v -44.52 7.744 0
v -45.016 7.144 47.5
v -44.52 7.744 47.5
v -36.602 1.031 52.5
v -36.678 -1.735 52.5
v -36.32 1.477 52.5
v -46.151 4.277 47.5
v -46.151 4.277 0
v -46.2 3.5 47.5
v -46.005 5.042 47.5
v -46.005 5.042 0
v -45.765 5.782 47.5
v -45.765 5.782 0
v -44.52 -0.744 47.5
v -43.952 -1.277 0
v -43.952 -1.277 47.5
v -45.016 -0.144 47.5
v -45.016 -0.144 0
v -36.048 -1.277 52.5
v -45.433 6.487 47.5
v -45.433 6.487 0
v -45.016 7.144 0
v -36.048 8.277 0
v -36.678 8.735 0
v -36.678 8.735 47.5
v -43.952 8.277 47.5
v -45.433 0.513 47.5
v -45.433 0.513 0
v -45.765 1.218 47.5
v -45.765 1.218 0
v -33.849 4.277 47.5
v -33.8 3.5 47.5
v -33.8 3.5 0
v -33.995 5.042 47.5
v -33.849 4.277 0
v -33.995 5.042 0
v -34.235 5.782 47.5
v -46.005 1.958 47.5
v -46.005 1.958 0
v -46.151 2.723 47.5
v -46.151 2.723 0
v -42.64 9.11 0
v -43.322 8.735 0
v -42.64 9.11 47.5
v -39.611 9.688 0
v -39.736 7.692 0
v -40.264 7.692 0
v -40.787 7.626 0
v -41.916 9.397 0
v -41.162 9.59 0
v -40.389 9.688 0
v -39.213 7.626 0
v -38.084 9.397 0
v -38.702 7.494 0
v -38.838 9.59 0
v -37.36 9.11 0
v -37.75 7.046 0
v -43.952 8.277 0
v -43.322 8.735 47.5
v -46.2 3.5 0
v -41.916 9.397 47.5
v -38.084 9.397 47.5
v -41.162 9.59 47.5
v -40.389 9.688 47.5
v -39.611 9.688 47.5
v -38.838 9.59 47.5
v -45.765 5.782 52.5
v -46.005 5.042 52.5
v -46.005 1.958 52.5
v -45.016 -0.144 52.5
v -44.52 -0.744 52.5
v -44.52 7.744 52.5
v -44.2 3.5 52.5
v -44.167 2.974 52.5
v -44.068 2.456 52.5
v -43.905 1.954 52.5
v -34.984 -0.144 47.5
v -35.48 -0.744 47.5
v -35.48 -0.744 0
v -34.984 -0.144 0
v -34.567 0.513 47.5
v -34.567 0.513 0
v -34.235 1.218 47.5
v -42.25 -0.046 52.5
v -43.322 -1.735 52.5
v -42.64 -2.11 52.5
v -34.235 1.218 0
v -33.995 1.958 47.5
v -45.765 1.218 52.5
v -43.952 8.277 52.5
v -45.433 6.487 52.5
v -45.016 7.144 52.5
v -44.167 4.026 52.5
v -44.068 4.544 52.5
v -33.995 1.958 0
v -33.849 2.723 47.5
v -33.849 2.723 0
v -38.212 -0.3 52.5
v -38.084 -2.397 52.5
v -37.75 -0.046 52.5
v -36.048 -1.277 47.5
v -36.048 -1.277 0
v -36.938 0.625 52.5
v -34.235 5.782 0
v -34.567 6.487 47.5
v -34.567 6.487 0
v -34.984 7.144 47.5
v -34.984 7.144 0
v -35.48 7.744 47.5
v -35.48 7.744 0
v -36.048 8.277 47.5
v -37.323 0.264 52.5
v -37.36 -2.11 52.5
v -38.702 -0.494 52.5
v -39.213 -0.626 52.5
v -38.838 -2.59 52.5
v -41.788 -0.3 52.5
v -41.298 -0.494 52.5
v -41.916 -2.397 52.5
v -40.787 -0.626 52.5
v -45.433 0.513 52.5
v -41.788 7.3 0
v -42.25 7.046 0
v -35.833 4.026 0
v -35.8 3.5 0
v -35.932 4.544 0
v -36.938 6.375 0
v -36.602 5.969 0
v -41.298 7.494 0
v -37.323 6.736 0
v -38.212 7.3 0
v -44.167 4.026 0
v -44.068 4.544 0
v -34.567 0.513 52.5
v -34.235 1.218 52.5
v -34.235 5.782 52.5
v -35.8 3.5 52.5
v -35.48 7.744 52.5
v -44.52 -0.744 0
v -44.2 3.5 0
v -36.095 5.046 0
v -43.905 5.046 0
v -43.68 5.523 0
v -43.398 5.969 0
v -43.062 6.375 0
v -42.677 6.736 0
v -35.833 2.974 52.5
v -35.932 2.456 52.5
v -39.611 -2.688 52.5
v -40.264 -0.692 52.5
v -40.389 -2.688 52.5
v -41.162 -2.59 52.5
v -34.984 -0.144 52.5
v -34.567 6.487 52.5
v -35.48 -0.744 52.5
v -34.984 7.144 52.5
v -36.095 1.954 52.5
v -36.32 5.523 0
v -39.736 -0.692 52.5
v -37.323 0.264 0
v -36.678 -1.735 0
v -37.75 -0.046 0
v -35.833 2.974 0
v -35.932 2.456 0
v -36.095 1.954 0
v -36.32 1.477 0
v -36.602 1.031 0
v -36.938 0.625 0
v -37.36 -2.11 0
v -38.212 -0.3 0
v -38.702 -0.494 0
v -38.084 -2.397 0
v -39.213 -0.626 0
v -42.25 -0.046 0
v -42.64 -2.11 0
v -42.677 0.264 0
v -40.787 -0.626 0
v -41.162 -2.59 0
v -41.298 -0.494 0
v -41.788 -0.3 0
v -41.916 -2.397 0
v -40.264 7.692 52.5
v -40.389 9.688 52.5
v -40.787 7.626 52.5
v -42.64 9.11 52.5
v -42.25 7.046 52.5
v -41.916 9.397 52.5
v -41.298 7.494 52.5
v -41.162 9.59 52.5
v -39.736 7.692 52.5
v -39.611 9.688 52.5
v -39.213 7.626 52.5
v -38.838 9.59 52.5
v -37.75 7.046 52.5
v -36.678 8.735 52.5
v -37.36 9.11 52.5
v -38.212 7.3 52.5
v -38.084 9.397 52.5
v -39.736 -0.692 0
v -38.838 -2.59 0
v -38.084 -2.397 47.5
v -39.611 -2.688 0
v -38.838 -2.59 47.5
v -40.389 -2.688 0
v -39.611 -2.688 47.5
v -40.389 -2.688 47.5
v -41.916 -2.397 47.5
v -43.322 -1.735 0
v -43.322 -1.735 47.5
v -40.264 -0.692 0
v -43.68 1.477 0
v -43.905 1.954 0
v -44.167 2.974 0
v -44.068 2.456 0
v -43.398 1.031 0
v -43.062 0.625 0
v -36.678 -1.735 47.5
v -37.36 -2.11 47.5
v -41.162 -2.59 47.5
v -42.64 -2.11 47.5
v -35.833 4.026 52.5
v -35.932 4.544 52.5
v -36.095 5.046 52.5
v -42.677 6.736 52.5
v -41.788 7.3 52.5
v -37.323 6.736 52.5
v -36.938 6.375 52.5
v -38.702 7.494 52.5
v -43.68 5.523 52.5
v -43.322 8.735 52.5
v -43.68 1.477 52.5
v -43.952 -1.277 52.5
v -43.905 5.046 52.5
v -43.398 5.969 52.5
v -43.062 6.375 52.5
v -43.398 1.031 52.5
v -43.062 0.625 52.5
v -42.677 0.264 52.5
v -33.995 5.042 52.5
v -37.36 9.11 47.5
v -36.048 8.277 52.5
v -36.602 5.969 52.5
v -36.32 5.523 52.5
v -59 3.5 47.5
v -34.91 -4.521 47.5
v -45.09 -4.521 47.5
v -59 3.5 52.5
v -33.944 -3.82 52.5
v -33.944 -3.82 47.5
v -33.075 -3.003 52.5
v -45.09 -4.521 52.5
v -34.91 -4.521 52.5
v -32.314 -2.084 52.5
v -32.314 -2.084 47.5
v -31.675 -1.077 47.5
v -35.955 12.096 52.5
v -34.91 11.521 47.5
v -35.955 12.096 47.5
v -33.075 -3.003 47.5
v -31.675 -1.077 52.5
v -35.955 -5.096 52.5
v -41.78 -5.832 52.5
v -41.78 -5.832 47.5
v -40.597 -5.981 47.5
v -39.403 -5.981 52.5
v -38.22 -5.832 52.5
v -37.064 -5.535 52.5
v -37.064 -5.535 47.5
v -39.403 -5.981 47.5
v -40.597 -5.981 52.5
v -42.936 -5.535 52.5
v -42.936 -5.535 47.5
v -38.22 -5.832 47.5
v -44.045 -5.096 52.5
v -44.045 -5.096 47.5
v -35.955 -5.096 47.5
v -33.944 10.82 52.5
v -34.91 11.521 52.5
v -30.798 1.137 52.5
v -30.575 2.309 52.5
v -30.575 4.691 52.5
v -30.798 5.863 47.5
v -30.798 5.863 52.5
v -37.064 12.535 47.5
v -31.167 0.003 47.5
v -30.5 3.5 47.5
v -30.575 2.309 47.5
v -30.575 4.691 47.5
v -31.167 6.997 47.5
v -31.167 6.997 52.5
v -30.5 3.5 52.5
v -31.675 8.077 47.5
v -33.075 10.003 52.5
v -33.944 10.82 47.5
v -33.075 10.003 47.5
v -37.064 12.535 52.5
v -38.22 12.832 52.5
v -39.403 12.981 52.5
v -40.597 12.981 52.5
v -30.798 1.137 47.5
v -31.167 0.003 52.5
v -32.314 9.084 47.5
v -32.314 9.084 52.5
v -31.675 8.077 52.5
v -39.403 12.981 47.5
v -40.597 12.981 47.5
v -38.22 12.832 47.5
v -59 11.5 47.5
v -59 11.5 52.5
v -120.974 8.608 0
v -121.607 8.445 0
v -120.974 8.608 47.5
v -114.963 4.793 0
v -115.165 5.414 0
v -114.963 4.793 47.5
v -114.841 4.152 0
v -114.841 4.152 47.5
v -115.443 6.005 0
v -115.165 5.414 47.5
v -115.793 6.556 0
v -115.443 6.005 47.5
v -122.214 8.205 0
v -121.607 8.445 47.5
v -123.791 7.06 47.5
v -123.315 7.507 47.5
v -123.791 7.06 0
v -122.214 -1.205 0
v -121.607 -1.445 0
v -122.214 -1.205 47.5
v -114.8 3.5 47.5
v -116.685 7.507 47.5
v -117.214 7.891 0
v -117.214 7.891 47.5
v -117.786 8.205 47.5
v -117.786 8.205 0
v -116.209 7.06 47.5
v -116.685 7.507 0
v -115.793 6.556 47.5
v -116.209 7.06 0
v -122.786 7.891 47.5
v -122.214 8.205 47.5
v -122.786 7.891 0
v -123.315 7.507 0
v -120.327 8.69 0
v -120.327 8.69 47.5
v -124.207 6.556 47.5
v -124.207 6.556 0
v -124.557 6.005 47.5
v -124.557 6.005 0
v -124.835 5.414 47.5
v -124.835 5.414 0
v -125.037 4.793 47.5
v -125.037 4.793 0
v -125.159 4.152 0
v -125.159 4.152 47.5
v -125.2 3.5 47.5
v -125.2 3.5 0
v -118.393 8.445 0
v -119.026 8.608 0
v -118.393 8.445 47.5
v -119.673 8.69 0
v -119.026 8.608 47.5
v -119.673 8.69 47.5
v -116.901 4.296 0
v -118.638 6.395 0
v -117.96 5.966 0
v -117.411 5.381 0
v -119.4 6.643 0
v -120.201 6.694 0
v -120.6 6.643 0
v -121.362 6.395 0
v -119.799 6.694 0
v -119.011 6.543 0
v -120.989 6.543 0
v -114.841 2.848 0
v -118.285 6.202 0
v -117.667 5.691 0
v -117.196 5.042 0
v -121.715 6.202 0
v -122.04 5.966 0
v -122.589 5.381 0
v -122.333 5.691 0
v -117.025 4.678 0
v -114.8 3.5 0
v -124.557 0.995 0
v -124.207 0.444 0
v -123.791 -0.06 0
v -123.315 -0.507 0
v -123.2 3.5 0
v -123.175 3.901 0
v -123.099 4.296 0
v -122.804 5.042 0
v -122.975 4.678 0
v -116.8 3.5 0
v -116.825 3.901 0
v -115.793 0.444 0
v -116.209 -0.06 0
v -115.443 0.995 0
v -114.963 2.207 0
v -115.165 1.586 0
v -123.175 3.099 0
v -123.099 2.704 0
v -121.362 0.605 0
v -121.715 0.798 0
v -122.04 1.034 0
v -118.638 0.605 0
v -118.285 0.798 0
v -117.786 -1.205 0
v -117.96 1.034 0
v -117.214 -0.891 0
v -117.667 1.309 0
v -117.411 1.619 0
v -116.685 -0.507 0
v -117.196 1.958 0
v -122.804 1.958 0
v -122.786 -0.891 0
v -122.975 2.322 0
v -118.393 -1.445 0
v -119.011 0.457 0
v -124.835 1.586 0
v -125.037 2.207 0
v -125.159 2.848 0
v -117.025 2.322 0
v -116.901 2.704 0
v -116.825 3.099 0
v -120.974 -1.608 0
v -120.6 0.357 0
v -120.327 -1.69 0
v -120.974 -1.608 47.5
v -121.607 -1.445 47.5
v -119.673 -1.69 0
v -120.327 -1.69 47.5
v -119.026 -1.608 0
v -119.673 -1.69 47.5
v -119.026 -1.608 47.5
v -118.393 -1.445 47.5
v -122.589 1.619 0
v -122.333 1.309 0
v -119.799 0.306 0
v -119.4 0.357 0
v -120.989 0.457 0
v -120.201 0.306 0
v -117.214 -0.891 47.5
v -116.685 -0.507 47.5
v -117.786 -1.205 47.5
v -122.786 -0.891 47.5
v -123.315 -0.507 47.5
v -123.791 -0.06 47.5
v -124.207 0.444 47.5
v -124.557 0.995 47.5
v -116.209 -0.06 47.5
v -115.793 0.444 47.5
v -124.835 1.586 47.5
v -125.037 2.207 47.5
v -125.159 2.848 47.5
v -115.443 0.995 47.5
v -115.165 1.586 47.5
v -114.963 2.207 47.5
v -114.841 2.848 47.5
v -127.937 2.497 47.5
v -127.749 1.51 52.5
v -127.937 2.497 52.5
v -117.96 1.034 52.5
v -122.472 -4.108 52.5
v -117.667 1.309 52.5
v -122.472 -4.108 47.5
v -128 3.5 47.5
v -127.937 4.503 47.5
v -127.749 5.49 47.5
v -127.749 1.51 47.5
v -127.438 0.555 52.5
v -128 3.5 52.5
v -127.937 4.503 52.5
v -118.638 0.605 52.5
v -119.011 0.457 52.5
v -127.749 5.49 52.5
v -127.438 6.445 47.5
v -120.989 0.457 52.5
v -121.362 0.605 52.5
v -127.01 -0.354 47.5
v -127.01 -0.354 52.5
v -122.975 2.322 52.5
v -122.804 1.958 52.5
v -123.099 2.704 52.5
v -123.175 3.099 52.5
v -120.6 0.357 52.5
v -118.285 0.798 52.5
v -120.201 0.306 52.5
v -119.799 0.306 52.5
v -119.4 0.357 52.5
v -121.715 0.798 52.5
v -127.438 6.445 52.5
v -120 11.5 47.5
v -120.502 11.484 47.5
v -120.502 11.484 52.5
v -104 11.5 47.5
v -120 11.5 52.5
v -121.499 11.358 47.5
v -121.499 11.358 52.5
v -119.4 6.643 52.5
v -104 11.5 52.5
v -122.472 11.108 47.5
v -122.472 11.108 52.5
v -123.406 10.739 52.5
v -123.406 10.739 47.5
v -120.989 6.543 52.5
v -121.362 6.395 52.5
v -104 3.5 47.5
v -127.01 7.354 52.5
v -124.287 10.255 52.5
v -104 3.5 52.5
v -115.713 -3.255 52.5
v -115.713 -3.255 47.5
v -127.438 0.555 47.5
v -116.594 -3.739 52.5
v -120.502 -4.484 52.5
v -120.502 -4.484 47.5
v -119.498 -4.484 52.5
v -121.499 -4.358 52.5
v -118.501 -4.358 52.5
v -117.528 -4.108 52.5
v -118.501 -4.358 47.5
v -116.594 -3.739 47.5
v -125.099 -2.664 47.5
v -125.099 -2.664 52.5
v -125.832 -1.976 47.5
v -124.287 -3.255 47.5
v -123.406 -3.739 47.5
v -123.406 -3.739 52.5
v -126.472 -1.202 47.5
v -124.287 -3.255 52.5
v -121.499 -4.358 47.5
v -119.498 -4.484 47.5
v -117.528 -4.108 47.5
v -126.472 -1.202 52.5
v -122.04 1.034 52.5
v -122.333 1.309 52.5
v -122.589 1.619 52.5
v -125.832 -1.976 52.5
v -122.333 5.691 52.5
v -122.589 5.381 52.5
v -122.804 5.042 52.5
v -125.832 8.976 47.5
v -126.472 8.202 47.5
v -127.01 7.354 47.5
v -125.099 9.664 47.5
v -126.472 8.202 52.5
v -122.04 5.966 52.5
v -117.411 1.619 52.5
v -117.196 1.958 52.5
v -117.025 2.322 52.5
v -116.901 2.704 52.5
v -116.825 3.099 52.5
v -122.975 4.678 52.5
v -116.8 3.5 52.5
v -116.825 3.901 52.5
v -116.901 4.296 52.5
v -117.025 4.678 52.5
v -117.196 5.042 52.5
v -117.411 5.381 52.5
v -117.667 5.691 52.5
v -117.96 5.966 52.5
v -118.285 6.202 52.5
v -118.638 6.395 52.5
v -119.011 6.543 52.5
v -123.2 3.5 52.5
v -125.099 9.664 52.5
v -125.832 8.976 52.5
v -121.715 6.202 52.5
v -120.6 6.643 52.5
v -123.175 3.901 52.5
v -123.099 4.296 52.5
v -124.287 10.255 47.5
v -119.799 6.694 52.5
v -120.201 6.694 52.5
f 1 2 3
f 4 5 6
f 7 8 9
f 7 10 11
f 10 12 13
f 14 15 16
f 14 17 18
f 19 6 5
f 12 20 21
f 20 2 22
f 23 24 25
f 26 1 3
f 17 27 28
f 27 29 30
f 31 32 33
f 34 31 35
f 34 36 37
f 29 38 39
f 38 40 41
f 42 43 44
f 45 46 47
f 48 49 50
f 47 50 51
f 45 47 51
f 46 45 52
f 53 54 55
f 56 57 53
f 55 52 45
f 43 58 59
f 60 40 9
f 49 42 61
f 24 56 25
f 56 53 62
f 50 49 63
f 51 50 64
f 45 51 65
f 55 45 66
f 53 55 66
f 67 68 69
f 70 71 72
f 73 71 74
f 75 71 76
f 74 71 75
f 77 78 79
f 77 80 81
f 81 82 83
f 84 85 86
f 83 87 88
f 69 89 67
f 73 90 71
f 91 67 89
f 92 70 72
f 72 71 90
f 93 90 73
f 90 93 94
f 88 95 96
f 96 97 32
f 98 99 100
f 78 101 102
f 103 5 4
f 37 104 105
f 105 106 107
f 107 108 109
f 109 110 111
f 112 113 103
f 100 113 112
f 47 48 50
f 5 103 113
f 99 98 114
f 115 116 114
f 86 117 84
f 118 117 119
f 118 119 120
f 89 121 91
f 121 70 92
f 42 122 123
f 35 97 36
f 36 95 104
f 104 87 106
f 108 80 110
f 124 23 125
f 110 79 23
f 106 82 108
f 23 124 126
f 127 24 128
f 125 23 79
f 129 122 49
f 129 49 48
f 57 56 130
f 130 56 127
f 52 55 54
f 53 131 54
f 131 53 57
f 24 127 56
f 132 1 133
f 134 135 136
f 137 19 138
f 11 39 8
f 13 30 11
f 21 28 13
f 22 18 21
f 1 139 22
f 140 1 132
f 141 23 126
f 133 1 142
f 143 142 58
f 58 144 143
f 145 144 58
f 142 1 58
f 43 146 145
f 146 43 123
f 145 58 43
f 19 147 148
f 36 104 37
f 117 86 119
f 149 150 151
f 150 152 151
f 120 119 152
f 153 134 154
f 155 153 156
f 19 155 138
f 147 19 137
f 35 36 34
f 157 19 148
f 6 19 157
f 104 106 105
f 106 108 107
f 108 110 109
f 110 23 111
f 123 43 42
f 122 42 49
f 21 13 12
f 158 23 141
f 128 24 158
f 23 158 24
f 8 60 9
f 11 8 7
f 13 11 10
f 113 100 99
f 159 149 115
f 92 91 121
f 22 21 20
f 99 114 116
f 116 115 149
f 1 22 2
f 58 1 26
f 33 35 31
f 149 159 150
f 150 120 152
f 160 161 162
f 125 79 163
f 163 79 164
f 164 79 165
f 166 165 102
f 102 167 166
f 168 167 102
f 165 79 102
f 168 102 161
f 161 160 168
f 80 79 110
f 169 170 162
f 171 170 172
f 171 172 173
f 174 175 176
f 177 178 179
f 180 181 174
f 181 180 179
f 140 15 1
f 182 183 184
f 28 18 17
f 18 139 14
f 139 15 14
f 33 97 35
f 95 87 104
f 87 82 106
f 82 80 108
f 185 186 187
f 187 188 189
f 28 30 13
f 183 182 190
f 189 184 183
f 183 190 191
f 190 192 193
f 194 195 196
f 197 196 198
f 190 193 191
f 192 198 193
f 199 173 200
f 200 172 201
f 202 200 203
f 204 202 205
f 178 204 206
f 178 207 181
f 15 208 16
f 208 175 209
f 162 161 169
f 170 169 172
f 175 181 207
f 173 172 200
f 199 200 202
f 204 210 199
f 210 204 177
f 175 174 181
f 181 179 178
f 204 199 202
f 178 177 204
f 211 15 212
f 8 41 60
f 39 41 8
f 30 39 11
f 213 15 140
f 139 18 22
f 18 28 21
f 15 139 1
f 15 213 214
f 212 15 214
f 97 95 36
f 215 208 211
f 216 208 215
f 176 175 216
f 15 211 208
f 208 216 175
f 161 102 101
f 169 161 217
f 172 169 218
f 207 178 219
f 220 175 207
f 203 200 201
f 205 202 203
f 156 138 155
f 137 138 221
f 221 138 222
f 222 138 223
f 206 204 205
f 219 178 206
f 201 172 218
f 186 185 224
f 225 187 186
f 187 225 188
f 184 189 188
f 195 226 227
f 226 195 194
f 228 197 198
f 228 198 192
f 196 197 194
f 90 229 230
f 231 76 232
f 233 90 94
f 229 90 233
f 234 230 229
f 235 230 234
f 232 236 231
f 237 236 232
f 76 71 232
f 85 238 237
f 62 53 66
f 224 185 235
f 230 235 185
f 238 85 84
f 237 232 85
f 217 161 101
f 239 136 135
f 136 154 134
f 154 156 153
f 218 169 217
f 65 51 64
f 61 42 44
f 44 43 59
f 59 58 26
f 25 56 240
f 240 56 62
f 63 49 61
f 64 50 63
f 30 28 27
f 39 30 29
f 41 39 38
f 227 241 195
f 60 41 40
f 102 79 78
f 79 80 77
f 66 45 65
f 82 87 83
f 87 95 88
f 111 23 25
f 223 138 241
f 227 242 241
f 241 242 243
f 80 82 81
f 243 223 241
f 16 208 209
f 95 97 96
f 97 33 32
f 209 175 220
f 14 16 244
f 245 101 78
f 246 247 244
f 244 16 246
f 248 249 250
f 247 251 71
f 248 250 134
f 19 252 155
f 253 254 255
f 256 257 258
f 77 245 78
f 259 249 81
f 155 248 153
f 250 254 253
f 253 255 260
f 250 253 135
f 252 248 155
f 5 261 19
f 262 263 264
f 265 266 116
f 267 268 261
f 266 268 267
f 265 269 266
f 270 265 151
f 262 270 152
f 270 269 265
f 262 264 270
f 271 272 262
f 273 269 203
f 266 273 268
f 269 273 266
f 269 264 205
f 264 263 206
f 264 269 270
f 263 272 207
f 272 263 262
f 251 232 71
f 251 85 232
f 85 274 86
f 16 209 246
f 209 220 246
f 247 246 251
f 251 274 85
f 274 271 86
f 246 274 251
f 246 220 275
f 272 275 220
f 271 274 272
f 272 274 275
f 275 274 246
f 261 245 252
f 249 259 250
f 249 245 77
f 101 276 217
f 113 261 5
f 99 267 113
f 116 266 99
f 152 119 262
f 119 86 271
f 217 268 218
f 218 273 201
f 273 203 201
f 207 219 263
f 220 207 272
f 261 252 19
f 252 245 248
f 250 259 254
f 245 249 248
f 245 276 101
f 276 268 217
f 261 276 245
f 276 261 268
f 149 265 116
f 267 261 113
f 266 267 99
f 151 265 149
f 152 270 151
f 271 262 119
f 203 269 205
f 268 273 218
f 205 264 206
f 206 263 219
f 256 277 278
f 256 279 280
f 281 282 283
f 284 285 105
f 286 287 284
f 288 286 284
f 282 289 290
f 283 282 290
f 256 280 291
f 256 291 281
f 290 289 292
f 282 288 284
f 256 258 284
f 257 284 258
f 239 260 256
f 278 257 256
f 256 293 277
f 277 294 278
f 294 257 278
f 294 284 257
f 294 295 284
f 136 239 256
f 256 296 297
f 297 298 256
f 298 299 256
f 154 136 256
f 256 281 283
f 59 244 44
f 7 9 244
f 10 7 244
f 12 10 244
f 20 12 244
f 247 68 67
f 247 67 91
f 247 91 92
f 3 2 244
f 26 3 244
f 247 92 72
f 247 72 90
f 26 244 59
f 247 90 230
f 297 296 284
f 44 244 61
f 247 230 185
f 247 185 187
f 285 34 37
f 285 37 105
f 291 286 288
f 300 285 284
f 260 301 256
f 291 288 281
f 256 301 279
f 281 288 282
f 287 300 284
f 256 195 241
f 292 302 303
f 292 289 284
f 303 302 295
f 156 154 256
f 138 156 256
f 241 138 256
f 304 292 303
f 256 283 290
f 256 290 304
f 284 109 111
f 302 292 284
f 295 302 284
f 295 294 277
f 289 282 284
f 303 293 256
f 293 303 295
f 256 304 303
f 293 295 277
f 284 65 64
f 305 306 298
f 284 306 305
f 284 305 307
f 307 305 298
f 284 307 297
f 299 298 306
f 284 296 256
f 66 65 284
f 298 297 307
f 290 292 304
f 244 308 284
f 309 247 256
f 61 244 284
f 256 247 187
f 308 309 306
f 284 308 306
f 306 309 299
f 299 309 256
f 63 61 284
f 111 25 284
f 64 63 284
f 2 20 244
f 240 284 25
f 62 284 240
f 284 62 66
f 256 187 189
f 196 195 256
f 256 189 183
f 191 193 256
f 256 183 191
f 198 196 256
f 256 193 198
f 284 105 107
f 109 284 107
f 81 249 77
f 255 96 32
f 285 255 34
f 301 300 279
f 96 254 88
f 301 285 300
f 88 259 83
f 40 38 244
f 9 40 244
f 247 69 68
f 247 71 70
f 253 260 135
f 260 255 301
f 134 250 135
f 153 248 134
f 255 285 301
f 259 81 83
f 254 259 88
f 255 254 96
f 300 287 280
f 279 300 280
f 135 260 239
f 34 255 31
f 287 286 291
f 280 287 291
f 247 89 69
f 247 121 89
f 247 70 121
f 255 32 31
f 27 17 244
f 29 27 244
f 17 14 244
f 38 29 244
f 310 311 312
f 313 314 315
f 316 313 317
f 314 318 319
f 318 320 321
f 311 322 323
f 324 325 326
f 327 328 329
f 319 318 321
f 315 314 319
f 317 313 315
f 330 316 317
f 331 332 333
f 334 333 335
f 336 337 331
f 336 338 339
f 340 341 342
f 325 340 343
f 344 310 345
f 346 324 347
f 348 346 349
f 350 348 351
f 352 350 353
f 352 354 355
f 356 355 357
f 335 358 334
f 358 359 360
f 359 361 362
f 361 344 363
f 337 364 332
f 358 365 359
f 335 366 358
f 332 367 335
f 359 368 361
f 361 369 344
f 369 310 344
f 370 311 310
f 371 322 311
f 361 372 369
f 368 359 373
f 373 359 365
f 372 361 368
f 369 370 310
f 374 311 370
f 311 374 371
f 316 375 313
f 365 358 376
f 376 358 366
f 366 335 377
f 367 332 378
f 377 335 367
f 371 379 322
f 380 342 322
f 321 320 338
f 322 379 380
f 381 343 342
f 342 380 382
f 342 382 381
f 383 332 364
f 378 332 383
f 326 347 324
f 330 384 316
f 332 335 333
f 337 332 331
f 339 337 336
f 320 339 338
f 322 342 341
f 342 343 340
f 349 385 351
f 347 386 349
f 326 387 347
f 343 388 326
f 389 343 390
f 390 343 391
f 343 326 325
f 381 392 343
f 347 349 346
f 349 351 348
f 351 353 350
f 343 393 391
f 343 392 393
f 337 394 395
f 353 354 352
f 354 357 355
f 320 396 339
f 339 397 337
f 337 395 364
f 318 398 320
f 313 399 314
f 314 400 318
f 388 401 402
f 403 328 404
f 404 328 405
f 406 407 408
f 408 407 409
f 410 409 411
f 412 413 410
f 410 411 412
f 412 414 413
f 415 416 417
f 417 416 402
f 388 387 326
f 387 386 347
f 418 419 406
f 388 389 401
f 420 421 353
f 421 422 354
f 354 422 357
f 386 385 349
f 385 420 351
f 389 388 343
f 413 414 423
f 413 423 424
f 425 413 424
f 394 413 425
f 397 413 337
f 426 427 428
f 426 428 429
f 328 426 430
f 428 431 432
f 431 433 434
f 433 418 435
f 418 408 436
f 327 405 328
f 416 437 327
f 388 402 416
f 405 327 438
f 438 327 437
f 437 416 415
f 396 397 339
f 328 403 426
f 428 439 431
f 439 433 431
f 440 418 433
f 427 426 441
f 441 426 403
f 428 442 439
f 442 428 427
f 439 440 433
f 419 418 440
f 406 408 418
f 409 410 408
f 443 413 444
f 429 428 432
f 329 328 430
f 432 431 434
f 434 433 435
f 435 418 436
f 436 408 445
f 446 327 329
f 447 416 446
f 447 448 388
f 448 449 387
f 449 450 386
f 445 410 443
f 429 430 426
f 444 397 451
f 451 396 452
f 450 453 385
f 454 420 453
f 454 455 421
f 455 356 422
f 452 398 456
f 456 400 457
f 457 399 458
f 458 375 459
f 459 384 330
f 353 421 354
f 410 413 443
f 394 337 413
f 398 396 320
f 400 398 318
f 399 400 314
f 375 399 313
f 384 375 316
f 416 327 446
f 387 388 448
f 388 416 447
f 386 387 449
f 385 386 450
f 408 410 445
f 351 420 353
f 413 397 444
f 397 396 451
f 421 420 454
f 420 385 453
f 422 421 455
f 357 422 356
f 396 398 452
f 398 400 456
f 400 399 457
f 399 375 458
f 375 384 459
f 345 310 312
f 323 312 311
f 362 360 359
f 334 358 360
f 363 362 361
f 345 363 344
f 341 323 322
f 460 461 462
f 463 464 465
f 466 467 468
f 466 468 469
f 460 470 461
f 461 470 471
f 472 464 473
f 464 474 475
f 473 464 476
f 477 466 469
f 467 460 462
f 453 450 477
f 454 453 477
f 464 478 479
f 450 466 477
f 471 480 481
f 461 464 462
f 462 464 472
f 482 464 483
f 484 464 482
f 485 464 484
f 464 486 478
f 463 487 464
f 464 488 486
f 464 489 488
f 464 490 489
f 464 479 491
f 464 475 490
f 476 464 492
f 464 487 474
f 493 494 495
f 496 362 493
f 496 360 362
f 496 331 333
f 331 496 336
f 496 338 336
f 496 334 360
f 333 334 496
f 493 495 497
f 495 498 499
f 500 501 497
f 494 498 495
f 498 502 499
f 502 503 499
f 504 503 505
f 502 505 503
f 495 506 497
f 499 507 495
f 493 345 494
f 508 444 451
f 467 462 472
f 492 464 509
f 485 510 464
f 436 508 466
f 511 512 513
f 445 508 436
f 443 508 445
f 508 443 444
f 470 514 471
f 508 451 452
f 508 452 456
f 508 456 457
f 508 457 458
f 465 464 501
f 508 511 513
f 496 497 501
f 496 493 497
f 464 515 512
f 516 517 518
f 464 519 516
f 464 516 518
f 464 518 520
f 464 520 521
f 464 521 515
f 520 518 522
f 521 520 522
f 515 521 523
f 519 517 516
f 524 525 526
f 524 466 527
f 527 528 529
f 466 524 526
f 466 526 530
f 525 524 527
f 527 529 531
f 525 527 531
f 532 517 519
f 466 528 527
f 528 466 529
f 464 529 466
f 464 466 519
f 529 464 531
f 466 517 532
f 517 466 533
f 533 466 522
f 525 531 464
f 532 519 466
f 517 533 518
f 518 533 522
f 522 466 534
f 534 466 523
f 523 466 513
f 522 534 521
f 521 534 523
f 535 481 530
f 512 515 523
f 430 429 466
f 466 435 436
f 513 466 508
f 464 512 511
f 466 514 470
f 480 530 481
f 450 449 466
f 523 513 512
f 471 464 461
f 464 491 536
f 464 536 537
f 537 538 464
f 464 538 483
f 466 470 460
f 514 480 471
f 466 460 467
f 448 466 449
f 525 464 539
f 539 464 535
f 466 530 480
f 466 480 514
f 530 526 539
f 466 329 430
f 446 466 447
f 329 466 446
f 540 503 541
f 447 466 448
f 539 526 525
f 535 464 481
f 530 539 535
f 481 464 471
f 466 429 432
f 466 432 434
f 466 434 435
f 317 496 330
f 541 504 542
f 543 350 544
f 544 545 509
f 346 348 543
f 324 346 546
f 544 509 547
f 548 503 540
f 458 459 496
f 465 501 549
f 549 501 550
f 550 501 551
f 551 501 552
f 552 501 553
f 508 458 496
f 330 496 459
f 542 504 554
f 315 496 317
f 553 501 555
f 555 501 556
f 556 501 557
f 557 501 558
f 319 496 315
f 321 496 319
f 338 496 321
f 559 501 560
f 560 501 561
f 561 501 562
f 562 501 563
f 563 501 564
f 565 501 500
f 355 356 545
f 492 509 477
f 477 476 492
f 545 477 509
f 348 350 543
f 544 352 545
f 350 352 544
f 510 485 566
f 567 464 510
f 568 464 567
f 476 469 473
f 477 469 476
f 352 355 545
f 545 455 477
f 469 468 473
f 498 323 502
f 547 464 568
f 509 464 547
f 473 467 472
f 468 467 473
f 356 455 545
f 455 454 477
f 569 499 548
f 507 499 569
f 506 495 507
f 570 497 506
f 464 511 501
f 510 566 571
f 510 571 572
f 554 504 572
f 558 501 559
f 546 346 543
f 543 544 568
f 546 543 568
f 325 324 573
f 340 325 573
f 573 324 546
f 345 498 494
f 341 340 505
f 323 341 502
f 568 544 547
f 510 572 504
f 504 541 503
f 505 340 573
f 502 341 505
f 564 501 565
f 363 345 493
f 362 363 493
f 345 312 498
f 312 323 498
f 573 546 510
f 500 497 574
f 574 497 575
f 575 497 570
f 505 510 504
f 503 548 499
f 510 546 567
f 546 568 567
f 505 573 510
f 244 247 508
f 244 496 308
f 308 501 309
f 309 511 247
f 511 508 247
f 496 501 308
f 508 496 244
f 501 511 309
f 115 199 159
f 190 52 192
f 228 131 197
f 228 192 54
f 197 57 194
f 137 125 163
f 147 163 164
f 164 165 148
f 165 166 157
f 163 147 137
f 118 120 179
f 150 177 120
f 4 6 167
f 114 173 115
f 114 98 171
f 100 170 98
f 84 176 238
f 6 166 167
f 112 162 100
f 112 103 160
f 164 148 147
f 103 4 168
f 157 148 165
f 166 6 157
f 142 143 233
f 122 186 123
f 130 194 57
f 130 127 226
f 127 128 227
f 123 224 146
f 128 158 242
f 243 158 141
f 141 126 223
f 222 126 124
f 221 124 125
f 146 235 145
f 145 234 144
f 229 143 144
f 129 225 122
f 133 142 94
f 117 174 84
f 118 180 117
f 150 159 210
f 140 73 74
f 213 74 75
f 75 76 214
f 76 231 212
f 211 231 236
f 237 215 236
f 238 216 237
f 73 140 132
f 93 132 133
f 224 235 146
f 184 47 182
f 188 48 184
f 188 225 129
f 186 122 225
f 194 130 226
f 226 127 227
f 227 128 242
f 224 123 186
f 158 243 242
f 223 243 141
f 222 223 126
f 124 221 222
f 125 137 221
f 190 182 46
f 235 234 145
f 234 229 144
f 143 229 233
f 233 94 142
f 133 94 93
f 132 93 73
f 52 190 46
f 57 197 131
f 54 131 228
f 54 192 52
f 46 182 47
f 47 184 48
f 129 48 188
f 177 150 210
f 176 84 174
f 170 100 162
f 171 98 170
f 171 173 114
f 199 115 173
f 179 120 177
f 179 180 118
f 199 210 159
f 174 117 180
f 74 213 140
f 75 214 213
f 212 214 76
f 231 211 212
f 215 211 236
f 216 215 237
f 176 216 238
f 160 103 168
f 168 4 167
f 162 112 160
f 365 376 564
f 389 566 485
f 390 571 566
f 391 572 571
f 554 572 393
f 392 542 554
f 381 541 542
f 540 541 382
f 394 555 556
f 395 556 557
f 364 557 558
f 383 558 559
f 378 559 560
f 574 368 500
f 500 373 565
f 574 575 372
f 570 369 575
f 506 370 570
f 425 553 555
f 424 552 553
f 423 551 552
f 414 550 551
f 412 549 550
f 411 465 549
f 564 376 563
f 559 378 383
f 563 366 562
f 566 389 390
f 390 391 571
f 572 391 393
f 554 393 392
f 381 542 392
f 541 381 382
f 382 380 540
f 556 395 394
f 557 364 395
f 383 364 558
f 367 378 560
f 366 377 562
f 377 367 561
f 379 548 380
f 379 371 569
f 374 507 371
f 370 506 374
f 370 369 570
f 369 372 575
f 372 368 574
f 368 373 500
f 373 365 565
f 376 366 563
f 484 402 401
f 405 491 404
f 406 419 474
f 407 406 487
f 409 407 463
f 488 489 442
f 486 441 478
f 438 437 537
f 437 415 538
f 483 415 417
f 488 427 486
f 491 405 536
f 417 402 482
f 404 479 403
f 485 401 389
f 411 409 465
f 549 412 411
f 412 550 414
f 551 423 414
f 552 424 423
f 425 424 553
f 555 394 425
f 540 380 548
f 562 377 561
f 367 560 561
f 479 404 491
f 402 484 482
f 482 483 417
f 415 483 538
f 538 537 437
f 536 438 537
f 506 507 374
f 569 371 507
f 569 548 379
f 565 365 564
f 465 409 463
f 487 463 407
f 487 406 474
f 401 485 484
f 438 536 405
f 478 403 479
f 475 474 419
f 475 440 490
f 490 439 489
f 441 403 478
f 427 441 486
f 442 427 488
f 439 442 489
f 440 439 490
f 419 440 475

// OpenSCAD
// file: ../planelib/motor.scad
yoff=10+2;
xoff=5;//10+17;
xlen=200;

module wingBoom( bd=8, diff=0.1, len=500 )
{
    translate([xoff,yoff,zBoom])
    translate([ -200,0,0]) rotate([0,90,0])cylinder(d=bd+diff,h=len,center=true);  //8mm version

}



module wingMotorPlate( diff=0, holes=true )
{
    h0=12;
    module mcylinder( diff=0 )
    {
        rotate([0,-90,0]) 
            translate([ 0,0,-3-diff ]) 
                cylinder(d=33+diff, h=55+diff,center=false);   // body cylinder
    }
    
    module mholes()
    {
        rotate([0,-90,0]) 
            ScrewMotorPlate(screwlen=60);
    }
    
    module cable_hole()
    {
        translate( [ -3, 15, 0 ] )
        rotate([90,0,0])
        hull(){
            translate([-10,0,0]) cylinder(d=5,h=10,center=true );
            translate([0,-2,0]) cylinder(d=4,h=10,center=true );
            translate([0,+2,0]) cylinder(d=4,h=10,center=true );
        }
    }

    difference(){
        union()
        {
            translate([xoff,yoff,zBoom])
                difference(){
                    mcylinder(0+2*diff);
                    if( holes==true ){
                        mcylinder(-4-2*diff);
                        mholes();
                        cable_hole();
                    }
                }
            translate([xoff,yoff,zBoom])
                intersection(){
                    mcylinder(0);
                    translate([-tubeOffset1-xoff ,tubeOffsety-yoff, 0]) 
                        cylinder(d=dBar1+8, h=33,center=true ); // bar mount
                    }
        }
        union()
        {
            if( holes==true ){
                translate([-tubeOffset1 ,tubeOffsety, zBoom]) 
                            cube([dBar1+10,dBar1+10,12+0.2], center=true );
                translate([ xoff-120/2-tubeOffset1, yoff, zBoom]) 
                    rotate([0,90,0])
                        cylinder(d=8+0.3+4+0.5,h=140,center=true);  // mount for boom 8mm version
                            
                wingPolyLine( d=dPoly, pt=pSD6060[31], off=[+2,+0.5] );
                wingElectric();
                xTube( diameter=8+0.1, length=1000, tubeoffset=tubeOffset1 );
                translate( [-xoff+0, yoff-11.2, zBoom ] ) 
                    rotate([90,0,0])
                        ScrewAndHexNut( m=2,dist=10 );
                }
            
        }
    }


}

module wingMotor(diff=0, holes=true) //use diff!!!!!
{
    h0=12; //10;    
    {
        difference(){
            union(){
                Slice(){
                    wingSolid(r=-1/*diff*/);
                    translate([ xoff-130/2-3-10, yoff-15+1, zBoom]) cube([150,25+2,h0], center=true );
                    }
                
                translate([-tubeOffset1 ,tubeOffsety, zBoom]) cylinder(d=dBar1+10, h=h0,center=true );
                translate([-tubeOffset2 ,tubeOffsety, zBoom]) cylinder(d=dBar2+10, h=h0,center=true );
                
                translate([ xoff-120/2-tubeOffset1, yoff, zBoom]) rotate([0,90,0])cylinder(d=8+4,h=120,center=true);  //8mm version
                
                }
            union(){
                translate([xoff-153,yoff-21,zBoom])
                    rotate([0,0,-45])
                        cube([20,20,20], center=true );

                if( holes==true ){
                    color("Black") wingBoom();
                    color("Black") xTube( diameter=8+0.2, length=1000, tubeoffset=tubeOffset1 );
                    color("Black") xTube( diameter=6+0.2, length=400, tubeoffset=tubeOffset2 );   
                    wingMotorPlate(diff=0.1); 
                    wingPolyLine( d=dPoly, pt=pSD6060[31], off=[+2,+0.5] );
                    *wingPolyLine( d=dPoly, pt=ptQRuder, off=[+0,+0] );
                    wingElectric();
                    translate( [-xoff+0, yoff-11.2, zBoom ] ) 
                        rotate([90,0,0])
                            ScrewAndHexNut( m=2,dist=10 );
                    translate([xoff,yoff,zBoom])
                        translate([-83,-8,0]) rcube([54,4,20], round=3);
                    translate([xoff-35,yoff-15,zBoom]){
                        translate([-113,2,0]) cube([30,20,1.2], center=true );
                        translate([-113,8,0]) ScrewAndHexNut( m=2,dist=8 );
                        }
                        
                    }
                }
        }
       
    }
    
    *translate([xoff,yoff,zBoom]){
        color("Red") translate([15+12,0,0]) rotate([0,90,0]) cylinder(d=7*25.4,h=8,center=true);   // propeller     
        color("Red") translate([12,0,0]) rotate([0,90,0]) cylinder(d=33,h=17,center=true);   // motor
        *%translate([0,-60,0]) cube( [300,1,500], center=true );
        }
    *color("Black") xTube( diameter=8, length=1000, tubeoffset=tubeOffset1 );
    *color("Black") xTube( diameter=6, length=400, tubeoffset=tubeOffset2 );    
    *wingMotorPlate(diff=0);

}

module wingMotorCoverSolid()
{
    diff=0;
    hull(){
        translate([xoff-55,yoff,zBoom]) // body cylinder taken from wingMotorPlate()
            rotate([0,-90,0]) 
                translate([ 0,0,-3-diff ]) 
                    cylinder(d=33+diff, h=1,center=false);   
        translate([ xoff-120+0.5-tubeOffset1, yoff, zBoom]) rotate([0,90,0])cylinder(d=8+4+2,h=1,center=true);  // taken from wingMotor
        }
}

module fuseMotor(d=0.5, holes=true) // not needed with two motors at the wings
{
// 19mm Löcher, Motokreuz: Balken mit 2 Schrauben, Gegenstück in den Rumpf kleben....
    translate([9.5,0,0])
    difference()
    {
        union()
        {
            translate([-280,0,0]){   // cutout inner Motormount
                rotate([0,90,0]) cylinder( d=30-d, h = 3 ); // h=5 was too fat, because it is solid
                }
            translate([-282,0,0]){   // cutout outer Motormount
                rotate([0,90,0]) cylinder( d=35-d, h=3 );
                }
            translate([-282,0,0]){   // cutout outer Motormount
                rotate([0,90,0]) resize([50,20,3])cylinder( d=35-d, h=3 );
                }
            translate([-260,0,+20]) 
                    rotate([0,-90,0]) 
                        cylinder( d=3.8, h=30 );   
            translate([-260,0,-20]) 
                    rotate([0,-90,0]) 
                        cylinder( d=3.8, h=30 );  
            if( !holes ){
            translate([-250+6,0,-20]) 
                    rotate([0,-90,0]) 
                        cylinder( d=6.5, h=30,$fn=6 );   
            translate([-250+6,0,+20]) 
                    rotate([0,-90,0]) 
                        cylinder( d=6.5, h=30,$fn=6 );   
                }
            
        }
        if(holes)
        union()
        {
            translate([-270,0,0]) 
                    rotate([0,-90,0]) 
                        cylinder( d=9, h=40 );   
            translate([-270,0,0])
                rotate([0,-90,0])
                    for( rot=[0:90:360] )
                        rotate([0,0,rot+45])
                            translate([0,19/2,0])
                                    cylinder( d=3.8, h=40 );
            translate([-260,0,+20]) 
                    rotate([0,-90,0]) 
                        cylinder( d=3.8, h=30 );   
            translate([-260,0,-20]) 
                    rotate([0,-90,0]) 
                        cylinder( d=3.8, h=30 );   
        }
    }
}
// file: ../planelib/ruder2.scad
// Ruder new version, test with small cut, printable?

*cutterObjectAll( ptStart=[0,0,0], dStart=20, ptStop=[-20,0,100], dStop=10, dSpace=1.0 );
*cutterMask( ptStart=[0,0,0], dStart=20+2*1, ptStop=[-20,0,100], dStop=10+2*1 );

function RuderGetSize( z, zStart, zStop, sStart, sStop ) = ( ( sStart + (sStop-sStart)/(zStop-zStart)*(z-zStart) ) );
function RuderGetHeight( z, zStart, zStop, sStart, sStop, hBase ) = ( RuderGetSize( z, zStart, zStop, sStart, sStop) * hBase );
function RuderGetPoint( z, zStart, zStop, sStart, sStop, ptBase ) = ( RuderGetSize( z, zStart, zStop, sStart, sStop) * ptBase );
function RuderGetXOffset( z, zStart, zStop, oStart, oStop ) = ( ( oStart + (oStop-oStart)/(zStop-zStart)*(z-zStart) ) );

module Ruder2( ptStart=[0,0,0], dStart=20, ptStop=[0,0,100], dStop=10, dSpace=1.0, rot=45, steps=5 )
{
    difference(){
        children();
        cutterObjectAll(  ptStart, dStart, ptStop, dStop, dSpace, rot, steps );
        cutterInnerAxis( ptStart, ptStop );
        cutterEnds( ptStart, dStart, dSpace, axis=false );
        cutterEnds( ptStop, dStop, dSpace, axis=false );
        }
}

module cutterObjectAll( ptStart, dStart, ptStop, dStop, dSpace, rot=45, steps=5 )
{
    ptDelta = (ptStop - ptStart) / steps; 
    dDelta = (dStop - dStart) / steps; 
    
    for( i=[0:steps-1] )
    {
        dir = ((i%2)==0);
        cutterObjectSingle(  
            ptStart+i*ptDelta, dStart+i*dDelta, 
            ptStart+(i+1)*ptDelta, dStart+(i+1)*dDelta, 
            dSpace, dir, steps );
    }
}

module cutterObjectSingle( ptStart, dStart, ptStop, dStop, dSpace, dir=false, rot=45 )
{
    difference()
    {
        union()
        {
            cutterCylinder( ptStart, dStart+2*dSpace, ptStop, dStop+2*dSpace );
            if( dir == true )
            {
                cutterMask( ptStart, dStart+2*dSpace, ptStop, dStop+2*dSpace, dir, rot=+rot );
                cutterMask( ptStart, dStart+2*dSpace, ptStop, dStop+2*dSpace, dir, rot=-rot );
            }
            cutterSpacer( ptStart, dStart+2*dSpace, dSpace );
            cutterSpacer( ptStop, dStop+2*dSpace, dSpace ); // this partly dublicate
        }
        union()
        {
            cutterCylinder( ptStart, dStart, ptStop, dStop );
            cutterHalf( ptStart, dStart, ptStop, dStop, dir );
        }
    }
}

module cutterCylinder( ptStart, dStart, ptStop, dStop )
{
    hull()
    {
        translate( ptStart ) cylinder( d=dStart, h=0.001, center=true );
        translate( ptStop )  cylinder( d=dStop, h=0.001, center=true  );
    }
}

module cutterMask( ptStart, dStart, ptStop, dStop, dir=true, rot=40 )
{
    oxStart = dir ? 0 : -dStart;
    oxStop = dir ? 0 : -dStop;
    
    hull(){
        translate( ptStart ) 
            rotate( [0,0,rot] )
                translate( [oxStart,-dStart/2,0] )
                    cube([dStart/2,dStart, 0.001], center=false );
        translate( ptStop ) 
            rotate( [0,0,rot] )
                translate( [oxStop,-dStop/2,0] )
                    cube([dStop/2,dStop, 0.001], center=false );
        }
}

module cutterHalf( ptStart, dStart, ptStop, dStop, dir=true )
{
    oxStart = dir ? 0 : -dStart;
    oxStop = dir ? 0 : -dStop;
    hull(){
        translate( ptStart ) 
                translate( [oxStart,-dStart,0] )
                    cube([dStart,2*dStart, 0.001], center=false );
        translate( ptStop ) 
                translate( [oxStop,-dStop,0] )
                    cube([dStop,2*dStop, 0.001], center=false );
        }
}

module cutterSpacer( ptStart, dStart, dSpace )
{
    translate( ptStart )
        cylinder( d=dStart, h=dSpace, center=true );
}

module cutterInnerAxis( ptStart, ptStop, dAxis=2.2 )    // set the correct parameter dAxis
{
    hull()
    {
        translate( ptStart ) sphere( d=dAxis );
        translate( ptStop ) sphere( d=dAxis );
    }
}

module cutterEnds( pt, d, dSpace, axis=false )
{
    translate( pt ) 
        difference()
        {
            union()
            {
                cylinder( d=d+2*dSpace, h=dSpace, center=true );
                translate( [-100,-20,-dSpace/2] ) cube( [100,40,dSpace], center=false );
            }
            if ( axis==false ) cylinder( d=d+2*dSpace, h=dSpace, center=true );
        }
}
// file: ../planelib/screw.scad
// screw and nut helper


//ScrewAndHexNut( m=2, $fn=50 );

module ScrewAndHexNut( m=2, dist=10 )
{
    
    dscrew  = (m==2) ? 2.3 : ((m==3) ? 3.2 : 4.1 );   // screw, loose
    dnut    = (m==2) ? 4.6 : ((m==3) ? 6.2 : 8.0 );   // hex nut, measured
    dhead   = (m==2) ? 4.2 : ((m==3) ? 5.8 : 7.0 );   //hex head
    
    translate( [ 0, 0, -dist/2-10/2 ] ) 
        cylinder(d=4.6, h=10, center=true, $fn=6 ); //m2 nut, 6 edge hole
    translate( [ 0, 0, 0 ] ) 
        cylinder(d=2.3, h=dist+20, center=true ); //m2 screw
    translate( [ 0, 0, +dist/2+10/2 ] ) 
        cylinder(d=4.2, h=10, center=true ); //m2 head
}

module ScrewServo( dist=10 )
{
    cylinder(d=1.5, h=dist ); // servo screw, does not realy fit
}

module ScrewMotorPlate( dscrew=3.5, distmin=15.5, distmax=19.5, dcenter=8, rotoffset=0, screwlen=6, plate=6 )
{
    for( a=[45:90:360]) 
        rotate([0,0,a+rotoffset]) 
            hull(){
                translate( [0, distmax/2, -plate-0.1] ) // max plate is fixed 6
                    cylinder( d=dscrew, h=screwlen, center=false ); // motor screws
                translate( [0, distmin/2, -plate-0.1] ) 
                    cylinder( d=dscrew, h=screwlen, center=false ); // motor screws
                }
    translate( [0, 0, -plate-0.1] ) 
        cylinder( d=dcenter, h=plate+1, center=false ); // motor center

}
// file: ../planelib/servo.scad
servo_size_1 = [25.5,12,37];  // mg90s
servo_size_2 = [33.5,12,3];

*servo_sg90($fn=50);
*ServoDiff();

module servo_sg90_arm( center=[0-5,0+1.5,3.5+3.5+12-2], rot=55 ) // mod during HR work: arm is not x centered in servo -5mm, arm touch cutout z-2, cutout too deep y+1.5, default rot 65->55
{
	l=20+2;
	a=7;
	translate(v = center)
	{ 
		hull()
		for( r=[-rot:5:+rot])
		{
			rotate( [0,0,r+180])
			translate([0,a/2-l/2,0])
				cube( [a,l,a], center=true );
		}
	}
}
    

module servo_sg90( yadd=0 )
{
		cube( servo_size_1 + [0,yadd,0], center=true );
        translate([0, 0, 3.5]) 
            cube( servo_size_2 + [0,yadd,0], center=true );
		servo_sg90_arm( );
}


module ServoDiff( pos=[-100, 7, 348], rot=[0,0,0], yadd=0 )
{ 
    translate( pos)
            rotate(rot)
                servo_sg90( yadd );
}
// file: ../planelib/polyline.scad
module wingPolyLine( d=3, pt=[0,0], off=[0,0]  )
{
    poly = [ for( z=[-20,zTip+20] ) [ o(z).x - s(z)*pt.x - off.x , o(z).y + s(z)*pt.y + off.y, z ] ];   
    #for( i=[0:(len(poly)-2)] ){
        hull(){
            translate(poly[i]) 
                sphere( d=d );
            translate(poly[i+1]) 
                sphere( d=d );
            }
        }
}

module fusePolyLine( d=3, size=605, off=[0,0], p=pClarkFusePolyUp )
{
    for( i=[0:(len(p)-2)] ){
        hull(){
            translate([p[i].x*size, p[i].y*size+off.y, +off.x]) 
                sphere( d=d );
            translate([p[i+1].x*size, p[i+1].y*size+off.y, +off.x]) 
                sphere( d=d );
            }
        *echo( p[i] );
        }
}

module fusePolyLineQ( d=3, size=605, pt=[0,0], off=[0,0] )
{
    poly = [        
                    [o(zBoom).x - s(zBoom)*pt.x - off.x , o(zBoom).y + s(zBoom)*pt.y + off.y,  +o(zBoom).z ],
                    [o(zBase).x - s(zBase)*pt.x - off.x , o(zBase).y + s(zBase)*pt.y + off.y,  +o(zBase).z ],
                    [o(zBase).x - s(zBase)*pt.x - off.x , o(zBase).y + s(zBase)*pt.y + off.y,  -o(zBase).z ], 
                    [o(zBoom).x - s(zBoom)*pt.x - off.x , o(zBoom).y + s(zBoom)*pt.y + off.y,  -o(zBoom).z ]
                    ];
                    
        for( i=[0:(len(poly)-2)] ){
                hull(){
                    translate(poly[i]) 
                        sphere( d=d );
                    translate(poly[i+1]) 
                        sphere( d=d );
                    }
        }
}

module offsetPolyLine(  d=3, size=605, off=10, p=pClarkY )  // this does not yet work, just a test.
{
    for( i=[0:(len(p)-1)] ){
        po = size * p[i];
        pv = size * ((i>0) ? p[i-1] : p[len(p)-1]);
        pn = size * ((i>(len(p)-2)) ? p[0] : p[i+1]);

        pop = (pv + pn)/2 + po;
        p02 = pn - po;
        z = p02.x * pop.y + p02.y * pop.x;
        
        pt = sign( z ) * pop * (off/norm(pop));
       

        
        hull(){
            translate([po.x+pt.x, po.y+pt.y, 0]) 
                sphere( d=d );
            translate([pn.x+pt.x, pn.y+pt.y, 0]) 
                sphere( d=d );
            }
        echo( po, pop, z );
    }
}
// file: ../planelib/wing.scad
module segment( s, o, r=0, p=pSD6060 )
{
    factor = ( s[1] ) / ( s[0] );
    height = ( o[1].z - o[0].z );
    sx = ( o[1].x - o[0].x ) / height;
    sy = ( o[1].y - o[0].y ) / height;
    
    m=[ [ 1, 0,  sx, 0],
        [ 0, 1,  sy, 0],
        [ 0, 0,  1,  0],
        [ 0, 0,  0,  1] ];
    
    translate(o[0])
        multmatrix(m)
            linear_extrude( height=height, scale=factor, convexity=10 ) 
                spant2d( s=s[0], r=r, p=p );
}


module spant3d( d=0.3, offset=[0,0,0], size=100, r=0, p=pSD6060 )
{
    translate(offset) linear_extrude( d, convexity=10 ) spant2d(size,r,p);
}

module spant3dDiff( d=0.3, offset=[0,0,0], size=100, rot=[0,0,0], ra=0, ri=-2.5, p=pSD6060 )
{
    translate(offset) rotate(rot) translate([0,0,-d/2]) linear_extrude( height=d, convexity=10 )
    difference()
    {
        spant2d( s=size, r=ra, p=p );
        spant2d( s=size, r=ri, p=p );
    }
}

module spant2d(s=1, r=0, p=pSD6060 )
{
    offset(delta=r)
    //alternative: offset(r=r)
    scale(s)
    mirror([1,0])  // sollte das weg?
    polygon(p);
}
// file: ../planelib/skin.scad
module outerSkin( d=1, h=0, center=true )
{
    hgt = (h<=0) ? h : 2*d;
    difference(){
        minkowski(){
            children();
            cylinder(r=d,h=hgt,center=center ); 
        }
        children();
    }
}

module outerSkin2( d=1, h=0, center=true )
{
    hgt = (h<=0) ? h : 2*d;
    difference(){
        minkowski(){
            children(0);
            cylinder(r=d,h=hgt,center=center ); 
        }
        children(1);
    }
}

module innerSkin( )
{
    difference(){
        children(0);
        children(1);    
        }
}

module skin2()
{
    difference()
    {
        minkowski()
        {
            children(0);
            children(1);    
        }
        children(0);
    }
}

module Slice( )
{
    intersection()
    {
        children(0);
        children(1);
    }
}

module gridSlice( dy=30, angy=30, grid=2, dim=1000 )
{
    Slice(){
        children();
        for(z=[-dim:dy:dim], angy=[-angy,+angy])  
            translate([0,0,z])  
                rotate([0,angy,0])
                    cube([dim,dim,grid], center=true );
    }

}

module linearSlice( sh=100, sx=100, org=[0,0,0], rot=[0,0,0], center=true )
{
    Slice()
    {
        children();
        translate( org + [0,0,+sh/2] )
            rotate( rot )
                cube( [4*sx,2*sx,sh], center=center );
    }
}

module radialSlice( sh=100, sx=100, org=[0,0,0], rot=[0,0,0], mode=0, center=true )
{
    Steps = 120;
    Slice()
    {
        children();
        translate( org + [0,0,0] )
            rotate( rot )
                radialSliceHelper( d=2*sx, sh=sh, mode, center );
    }
}

module radialSliceHelper( d, sh, mode=0, center=true )
{
    gap = 0.1;  // 0.5 was too loose
    
    if( mode==0 ){
        cylinder( d=d, h=sh, center=center );
        }
            
    if( mode==1 ){
        difference(){
            union(){
                cylinder( d=d, h=sh, center=center );
                for( r=[0:120:360] )
                    translate([0,0,0]) rotate([0,90,r]) cylinder( d=10, h=d, center=center );
                }
            union(){
                for( r=[0:120:360] )
                    translate([0,0,sh]) rotate([0,90,r]) cylinder( d=10+0.2, h=d, center=center );
                }
            }
        }
 //hier war der marker..       
    if( mode==2 ){
        cx=5;
        cy=d/10;
        difference(){
            union(){
                cylinder( d=d, h=sh, center=center );
                for( r=[0:90:360] )
                    translate([0,0,0]) rotate([0,90,r]) cube([cx,cy,d],center=false); // d is diameter, cx,cy is size
                }
            union(){
                for( r=[0:90:360] )
                    translate([0,0,sh]) 
                        rotate([0,90,r]) 
                            translate([-gap,-gap/2,0])
                                cube([cx+gap*2,cy+gap,d],center=false);
                }
            }
        }
}

*rcube( [10,20,30], center=true, round=1 );
module rcube( size, center=true, round=1 )
{
    translate( center==true ? [0,0,0] : size/2 )
        hull() for (x=[1,-1],y=[1,-1],z=[1,-1]) translate([ x*size.x/2-round, y*size.y/2-round, z*size.z/2-round]) sphere( r=round );
}

module rcylinder( d=10, h=20, center=true, round=2 )
{
    minkowski(){
        cylinder( d=d-2*round, h=h-2*round, center=center);
        sphere( r=round );
        }
}

module show( d = [10,10,10] )
{
    for( i=[0:$children-1] )
    {
    translate( i * d )
        children(i);
    }
}
// main file
include <../planelib/inspectoer.scad>

mirror([0,0,1])
fuseWingMount(pos=0);
